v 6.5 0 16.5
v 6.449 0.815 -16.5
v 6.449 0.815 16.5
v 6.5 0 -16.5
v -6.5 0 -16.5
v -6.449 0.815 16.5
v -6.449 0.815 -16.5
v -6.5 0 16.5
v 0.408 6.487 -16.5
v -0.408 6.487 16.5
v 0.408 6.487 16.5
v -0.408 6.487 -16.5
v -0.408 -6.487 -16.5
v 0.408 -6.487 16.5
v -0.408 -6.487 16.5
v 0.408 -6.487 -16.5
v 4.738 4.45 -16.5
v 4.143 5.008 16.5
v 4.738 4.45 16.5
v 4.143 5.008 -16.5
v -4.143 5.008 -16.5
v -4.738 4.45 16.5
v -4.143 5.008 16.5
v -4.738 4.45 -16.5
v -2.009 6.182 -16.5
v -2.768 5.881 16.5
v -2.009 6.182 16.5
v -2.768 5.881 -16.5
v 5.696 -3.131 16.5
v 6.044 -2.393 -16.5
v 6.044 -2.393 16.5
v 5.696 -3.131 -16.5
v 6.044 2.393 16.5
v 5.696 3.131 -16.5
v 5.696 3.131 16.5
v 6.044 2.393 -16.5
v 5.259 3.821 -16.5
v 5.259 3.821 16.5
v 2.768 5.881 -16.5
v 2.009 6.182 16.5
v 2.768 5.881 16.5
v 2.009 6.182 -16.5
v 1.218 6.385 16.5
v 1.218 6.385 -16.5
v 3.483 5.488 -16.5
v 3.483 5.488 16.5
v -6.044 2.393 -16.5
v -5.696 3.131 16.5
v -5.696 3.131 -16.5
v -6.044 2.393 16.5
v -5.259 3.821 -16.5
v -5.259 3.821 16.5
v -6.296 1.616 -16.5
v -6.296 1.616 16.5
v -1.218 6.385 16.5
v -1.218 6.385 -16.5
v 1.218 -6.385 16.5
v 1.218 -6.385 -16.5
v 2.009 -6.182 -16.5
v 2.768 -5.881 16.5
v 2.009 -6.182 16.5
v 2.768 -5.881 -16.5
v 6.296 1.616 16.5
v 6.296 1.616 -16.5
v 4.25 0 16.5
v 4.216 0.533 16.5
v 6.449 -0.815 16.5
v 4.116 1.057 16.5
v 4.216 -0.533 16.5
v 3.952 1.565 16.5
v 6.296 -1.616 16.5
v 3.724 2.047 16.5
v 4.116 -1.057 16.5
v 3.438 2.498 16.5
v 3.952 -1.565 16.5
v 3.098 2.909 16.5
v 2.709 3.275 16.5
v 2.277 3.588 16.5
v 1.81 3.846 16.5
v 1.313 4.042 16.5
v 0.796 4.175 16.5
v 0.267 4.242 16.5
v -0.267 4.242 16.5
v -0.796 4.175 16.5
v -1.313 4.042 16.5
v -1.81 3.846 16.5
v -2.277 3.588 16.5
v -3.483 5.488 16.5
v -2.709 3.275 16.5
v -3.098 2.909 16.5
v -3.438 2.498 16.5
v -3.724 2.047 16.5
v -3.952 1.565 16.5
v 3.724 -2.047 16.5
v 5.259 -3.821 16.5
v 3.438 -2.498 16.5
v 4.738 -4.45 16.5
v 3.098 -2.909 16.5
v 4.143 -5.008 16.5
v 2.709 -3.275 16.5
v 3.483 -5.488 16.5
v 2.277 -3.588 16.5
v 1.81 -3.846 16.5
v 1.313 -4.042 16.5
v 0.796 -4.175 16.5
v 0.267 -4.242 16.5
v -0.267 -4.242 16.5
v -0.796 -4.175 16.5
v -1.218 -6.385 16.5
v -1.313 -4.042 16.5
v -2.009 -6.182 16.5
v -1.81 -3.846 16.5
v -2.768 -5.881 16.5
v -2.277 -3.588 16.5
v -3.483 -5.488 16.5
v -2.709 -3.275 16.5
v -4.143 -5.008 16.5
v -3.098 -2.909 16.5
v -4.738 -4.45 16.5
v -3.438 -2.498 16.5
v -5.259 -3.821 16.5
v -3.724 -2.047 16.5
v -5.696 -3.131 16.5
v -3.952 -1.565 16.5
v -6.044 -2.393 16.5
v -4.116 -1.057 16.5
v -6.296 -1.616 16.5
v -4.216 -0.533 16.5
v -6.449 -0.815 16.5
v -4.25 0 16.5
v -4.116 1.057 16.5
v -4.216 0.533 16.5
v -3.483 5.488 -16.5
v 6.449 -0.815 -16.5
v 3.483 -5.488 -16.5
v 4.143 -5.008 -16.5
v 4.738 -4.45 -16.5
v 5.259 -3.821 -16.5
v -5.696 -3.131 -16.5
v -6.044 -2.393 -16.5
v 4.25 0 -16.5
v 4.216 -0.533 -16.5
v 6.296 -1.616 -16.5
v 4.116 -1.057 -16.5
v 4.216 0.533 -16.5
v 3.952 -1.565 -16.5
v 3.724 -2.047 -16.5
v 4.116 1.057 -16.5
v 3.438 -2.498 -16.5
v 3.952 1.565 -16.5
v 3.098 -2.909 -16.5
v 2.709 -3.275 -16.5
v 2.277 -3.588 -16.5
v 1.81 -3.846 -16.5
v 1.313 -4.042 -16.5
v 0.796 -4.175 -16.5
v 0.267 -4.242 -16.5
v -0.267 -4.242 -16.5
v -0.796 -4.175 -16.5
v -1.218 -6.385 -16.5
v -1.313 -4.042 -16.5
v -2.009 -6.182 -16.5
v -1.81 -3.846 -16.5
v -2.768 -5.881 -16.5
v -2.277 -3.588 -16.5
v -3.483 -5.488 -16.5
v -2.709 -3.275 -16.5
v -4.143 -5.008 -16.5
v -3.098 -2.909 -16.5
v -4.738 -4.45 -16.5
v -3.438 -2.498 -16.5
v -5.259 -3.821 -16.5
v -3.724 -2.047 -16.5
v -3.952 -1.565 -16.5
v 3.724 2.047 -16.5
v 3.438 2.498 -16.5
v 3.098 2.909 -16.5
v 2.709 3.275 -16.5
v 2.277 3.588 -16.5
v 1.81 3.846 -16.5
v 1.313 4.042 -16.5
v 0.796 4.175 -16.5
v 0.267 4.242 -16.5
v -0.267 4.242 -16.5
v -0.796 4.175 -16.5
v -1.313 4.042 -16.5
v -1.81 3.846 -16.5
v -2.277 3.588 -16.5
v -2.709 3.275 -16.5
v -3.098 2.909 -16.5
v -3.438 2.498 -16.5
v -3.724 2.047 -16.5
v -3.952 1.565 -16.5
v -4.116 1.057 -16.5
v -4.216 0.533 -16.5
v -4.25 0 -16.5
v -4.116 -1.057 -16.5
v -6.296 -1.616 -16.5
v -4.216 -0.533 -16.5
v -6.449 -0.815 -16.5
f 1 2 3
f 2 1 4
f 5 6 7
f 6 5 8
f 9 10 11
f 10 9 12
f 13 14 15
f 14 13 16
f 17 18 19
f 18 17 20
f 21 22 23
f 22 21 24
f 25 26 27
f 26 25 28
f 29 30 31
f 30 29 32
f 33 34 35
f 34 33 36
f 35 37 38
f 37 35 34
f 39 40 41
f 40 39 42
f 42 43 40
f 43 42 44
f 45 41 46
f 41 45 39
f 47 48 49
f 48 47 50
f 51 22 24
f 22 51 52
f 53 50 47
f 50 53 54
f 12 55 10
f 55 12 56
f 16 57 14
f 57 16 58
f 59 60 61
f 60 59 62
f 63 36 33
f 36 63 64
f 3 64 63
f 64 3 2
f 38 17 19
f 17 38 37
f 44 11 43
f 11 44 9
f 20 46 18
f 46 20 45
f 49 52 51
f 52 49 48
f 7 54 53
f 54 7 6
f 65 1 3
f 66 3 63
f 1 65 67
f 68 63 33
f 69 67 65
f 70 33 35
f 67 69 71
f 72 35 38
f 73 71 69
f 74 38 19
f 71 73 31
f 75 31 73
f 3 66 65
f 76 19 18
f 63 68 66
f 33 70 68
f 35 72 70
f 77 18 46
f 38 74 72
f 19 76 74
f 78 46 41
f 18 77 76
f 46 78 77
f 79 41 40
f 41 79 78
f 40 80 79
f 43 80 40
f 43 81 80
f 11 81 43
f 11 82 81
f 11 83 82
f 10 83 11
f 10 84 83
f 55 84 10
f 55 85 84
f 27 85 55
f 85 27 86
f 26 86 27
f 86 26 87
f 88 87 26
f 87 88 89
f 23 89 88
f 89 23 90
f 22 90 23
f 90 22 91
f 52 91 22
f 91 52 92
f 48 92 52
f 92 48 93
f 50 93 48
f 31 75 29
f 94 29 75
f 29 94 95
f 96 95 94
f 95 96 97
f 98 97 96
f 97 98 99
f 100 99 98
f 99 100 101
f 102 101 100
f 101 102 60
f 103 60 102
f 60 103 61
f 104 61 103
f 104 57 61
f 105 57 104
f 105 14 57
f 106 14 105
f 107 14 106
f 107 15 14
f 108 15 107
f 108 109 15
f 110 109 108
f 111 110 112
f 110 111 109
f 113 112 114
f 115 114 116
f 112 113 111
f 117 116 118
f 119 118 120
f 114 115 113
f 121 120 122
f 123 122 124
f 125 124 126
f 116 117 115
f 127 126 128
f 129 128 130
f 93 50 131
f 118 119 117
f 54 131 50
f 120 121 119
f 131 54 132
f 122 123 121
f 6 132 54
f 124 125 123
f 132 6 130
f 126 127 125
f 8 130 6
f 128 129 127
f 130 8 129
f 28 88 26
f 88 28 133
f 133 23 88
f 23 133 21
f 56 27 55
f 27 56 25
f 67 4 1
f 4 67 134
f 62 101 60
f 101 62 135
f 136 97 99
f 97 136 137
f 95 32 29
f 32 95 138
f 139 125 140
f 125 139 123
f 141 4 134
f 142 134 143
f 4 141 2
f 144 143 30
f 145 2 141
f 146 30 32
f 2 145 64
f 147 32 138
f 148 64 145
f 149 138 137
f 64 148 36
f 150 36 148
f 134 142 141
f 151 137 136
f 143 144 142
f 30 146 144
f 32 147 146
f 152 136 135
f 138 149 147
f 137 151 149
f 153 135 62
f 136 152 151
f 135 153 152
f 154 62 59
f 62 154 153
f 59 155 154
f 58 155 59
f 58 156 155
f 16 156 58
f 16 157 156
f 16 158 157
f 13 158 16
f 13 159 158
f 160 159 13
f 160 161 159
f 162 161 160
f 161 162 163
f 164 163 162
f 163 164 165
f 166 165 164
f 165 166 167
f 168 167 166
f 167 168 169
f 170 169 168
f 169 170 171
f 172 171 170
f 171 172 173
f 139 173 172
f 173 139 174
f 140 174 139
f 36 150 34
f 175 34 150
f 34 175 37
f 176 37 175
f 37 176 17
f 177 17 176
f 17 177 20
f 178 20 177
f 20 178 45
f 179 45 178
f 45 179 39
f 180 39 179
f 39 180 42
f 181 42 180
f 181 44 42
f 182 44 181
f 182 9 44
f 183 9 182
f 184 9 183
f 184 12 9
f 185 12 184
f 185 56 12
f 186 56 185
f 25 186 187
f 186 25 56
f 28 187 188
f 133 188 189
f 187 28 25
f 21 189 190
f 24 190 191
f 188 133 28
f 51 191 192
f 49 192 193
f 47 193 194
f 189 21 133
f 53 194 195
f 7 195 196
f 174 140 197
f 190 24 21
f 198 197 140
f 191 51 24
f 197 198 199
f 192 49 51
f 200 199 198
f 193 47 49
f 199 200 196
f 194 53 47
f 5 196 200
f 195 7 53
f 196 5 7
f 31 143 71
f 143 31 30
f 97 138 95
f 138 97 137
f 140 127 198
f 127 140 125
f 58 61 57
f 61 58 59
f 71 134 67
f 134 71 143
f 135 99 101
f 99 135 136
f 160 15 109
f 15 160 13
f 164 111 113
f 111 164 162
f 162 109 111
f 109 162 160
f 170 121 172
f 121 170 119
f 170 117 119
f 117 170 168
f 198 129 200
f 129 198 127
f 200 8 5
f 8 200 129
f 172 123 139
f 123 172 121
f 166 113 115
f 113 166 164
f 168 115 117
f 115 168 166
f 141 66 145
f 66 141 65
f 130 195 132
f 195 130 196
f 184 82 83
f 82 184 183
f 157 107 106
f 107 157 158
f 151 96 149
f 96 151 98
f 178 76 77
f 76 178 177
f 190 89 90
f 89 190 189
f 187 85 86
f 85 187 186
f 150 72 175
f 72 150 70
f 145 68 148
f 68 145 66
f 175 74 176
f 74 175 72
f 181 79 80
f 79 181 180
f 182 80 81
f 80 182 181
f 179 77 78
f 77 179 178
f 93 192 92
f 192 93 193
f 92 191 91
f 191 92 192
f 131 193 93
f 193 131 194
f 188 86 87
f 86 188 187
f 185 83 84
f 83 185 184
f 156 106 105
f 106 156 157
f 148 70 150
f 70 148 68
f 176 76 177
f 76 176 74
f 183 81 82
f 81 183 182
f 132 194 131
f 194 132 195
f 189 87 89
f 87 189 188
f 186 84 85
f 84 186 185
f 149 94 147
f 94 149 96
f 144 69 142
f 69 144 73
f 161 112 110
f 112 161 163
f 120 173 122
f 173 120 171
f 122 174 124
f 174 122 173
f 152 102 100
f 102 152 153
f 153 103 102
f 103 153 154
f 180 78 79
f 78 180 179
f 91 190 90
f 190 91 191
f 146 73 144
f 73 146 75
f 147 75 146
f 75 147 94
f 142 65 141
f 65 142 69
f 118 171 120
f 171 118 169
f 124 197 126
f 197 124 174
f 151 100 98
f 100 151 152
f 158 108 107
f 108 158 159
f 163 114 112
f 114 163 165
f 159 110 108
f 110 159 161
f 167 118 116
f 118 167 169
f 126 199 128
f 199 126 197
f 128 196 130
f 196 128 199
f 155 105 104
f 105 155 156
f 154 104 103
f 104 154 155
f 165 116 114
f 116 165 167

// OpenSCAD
$fn = 50;


difference() {
	union() {
		translate(v = [0, 0, -16.5000000000]) {
			cylinder(h = 33, r = 6.5000000000);
		}
	}
	union() {
		translate(v = [0, 0, -100.0000000000]) {
			cylinder(h = 200, r = 4.2500000000);
		}
	}
}
